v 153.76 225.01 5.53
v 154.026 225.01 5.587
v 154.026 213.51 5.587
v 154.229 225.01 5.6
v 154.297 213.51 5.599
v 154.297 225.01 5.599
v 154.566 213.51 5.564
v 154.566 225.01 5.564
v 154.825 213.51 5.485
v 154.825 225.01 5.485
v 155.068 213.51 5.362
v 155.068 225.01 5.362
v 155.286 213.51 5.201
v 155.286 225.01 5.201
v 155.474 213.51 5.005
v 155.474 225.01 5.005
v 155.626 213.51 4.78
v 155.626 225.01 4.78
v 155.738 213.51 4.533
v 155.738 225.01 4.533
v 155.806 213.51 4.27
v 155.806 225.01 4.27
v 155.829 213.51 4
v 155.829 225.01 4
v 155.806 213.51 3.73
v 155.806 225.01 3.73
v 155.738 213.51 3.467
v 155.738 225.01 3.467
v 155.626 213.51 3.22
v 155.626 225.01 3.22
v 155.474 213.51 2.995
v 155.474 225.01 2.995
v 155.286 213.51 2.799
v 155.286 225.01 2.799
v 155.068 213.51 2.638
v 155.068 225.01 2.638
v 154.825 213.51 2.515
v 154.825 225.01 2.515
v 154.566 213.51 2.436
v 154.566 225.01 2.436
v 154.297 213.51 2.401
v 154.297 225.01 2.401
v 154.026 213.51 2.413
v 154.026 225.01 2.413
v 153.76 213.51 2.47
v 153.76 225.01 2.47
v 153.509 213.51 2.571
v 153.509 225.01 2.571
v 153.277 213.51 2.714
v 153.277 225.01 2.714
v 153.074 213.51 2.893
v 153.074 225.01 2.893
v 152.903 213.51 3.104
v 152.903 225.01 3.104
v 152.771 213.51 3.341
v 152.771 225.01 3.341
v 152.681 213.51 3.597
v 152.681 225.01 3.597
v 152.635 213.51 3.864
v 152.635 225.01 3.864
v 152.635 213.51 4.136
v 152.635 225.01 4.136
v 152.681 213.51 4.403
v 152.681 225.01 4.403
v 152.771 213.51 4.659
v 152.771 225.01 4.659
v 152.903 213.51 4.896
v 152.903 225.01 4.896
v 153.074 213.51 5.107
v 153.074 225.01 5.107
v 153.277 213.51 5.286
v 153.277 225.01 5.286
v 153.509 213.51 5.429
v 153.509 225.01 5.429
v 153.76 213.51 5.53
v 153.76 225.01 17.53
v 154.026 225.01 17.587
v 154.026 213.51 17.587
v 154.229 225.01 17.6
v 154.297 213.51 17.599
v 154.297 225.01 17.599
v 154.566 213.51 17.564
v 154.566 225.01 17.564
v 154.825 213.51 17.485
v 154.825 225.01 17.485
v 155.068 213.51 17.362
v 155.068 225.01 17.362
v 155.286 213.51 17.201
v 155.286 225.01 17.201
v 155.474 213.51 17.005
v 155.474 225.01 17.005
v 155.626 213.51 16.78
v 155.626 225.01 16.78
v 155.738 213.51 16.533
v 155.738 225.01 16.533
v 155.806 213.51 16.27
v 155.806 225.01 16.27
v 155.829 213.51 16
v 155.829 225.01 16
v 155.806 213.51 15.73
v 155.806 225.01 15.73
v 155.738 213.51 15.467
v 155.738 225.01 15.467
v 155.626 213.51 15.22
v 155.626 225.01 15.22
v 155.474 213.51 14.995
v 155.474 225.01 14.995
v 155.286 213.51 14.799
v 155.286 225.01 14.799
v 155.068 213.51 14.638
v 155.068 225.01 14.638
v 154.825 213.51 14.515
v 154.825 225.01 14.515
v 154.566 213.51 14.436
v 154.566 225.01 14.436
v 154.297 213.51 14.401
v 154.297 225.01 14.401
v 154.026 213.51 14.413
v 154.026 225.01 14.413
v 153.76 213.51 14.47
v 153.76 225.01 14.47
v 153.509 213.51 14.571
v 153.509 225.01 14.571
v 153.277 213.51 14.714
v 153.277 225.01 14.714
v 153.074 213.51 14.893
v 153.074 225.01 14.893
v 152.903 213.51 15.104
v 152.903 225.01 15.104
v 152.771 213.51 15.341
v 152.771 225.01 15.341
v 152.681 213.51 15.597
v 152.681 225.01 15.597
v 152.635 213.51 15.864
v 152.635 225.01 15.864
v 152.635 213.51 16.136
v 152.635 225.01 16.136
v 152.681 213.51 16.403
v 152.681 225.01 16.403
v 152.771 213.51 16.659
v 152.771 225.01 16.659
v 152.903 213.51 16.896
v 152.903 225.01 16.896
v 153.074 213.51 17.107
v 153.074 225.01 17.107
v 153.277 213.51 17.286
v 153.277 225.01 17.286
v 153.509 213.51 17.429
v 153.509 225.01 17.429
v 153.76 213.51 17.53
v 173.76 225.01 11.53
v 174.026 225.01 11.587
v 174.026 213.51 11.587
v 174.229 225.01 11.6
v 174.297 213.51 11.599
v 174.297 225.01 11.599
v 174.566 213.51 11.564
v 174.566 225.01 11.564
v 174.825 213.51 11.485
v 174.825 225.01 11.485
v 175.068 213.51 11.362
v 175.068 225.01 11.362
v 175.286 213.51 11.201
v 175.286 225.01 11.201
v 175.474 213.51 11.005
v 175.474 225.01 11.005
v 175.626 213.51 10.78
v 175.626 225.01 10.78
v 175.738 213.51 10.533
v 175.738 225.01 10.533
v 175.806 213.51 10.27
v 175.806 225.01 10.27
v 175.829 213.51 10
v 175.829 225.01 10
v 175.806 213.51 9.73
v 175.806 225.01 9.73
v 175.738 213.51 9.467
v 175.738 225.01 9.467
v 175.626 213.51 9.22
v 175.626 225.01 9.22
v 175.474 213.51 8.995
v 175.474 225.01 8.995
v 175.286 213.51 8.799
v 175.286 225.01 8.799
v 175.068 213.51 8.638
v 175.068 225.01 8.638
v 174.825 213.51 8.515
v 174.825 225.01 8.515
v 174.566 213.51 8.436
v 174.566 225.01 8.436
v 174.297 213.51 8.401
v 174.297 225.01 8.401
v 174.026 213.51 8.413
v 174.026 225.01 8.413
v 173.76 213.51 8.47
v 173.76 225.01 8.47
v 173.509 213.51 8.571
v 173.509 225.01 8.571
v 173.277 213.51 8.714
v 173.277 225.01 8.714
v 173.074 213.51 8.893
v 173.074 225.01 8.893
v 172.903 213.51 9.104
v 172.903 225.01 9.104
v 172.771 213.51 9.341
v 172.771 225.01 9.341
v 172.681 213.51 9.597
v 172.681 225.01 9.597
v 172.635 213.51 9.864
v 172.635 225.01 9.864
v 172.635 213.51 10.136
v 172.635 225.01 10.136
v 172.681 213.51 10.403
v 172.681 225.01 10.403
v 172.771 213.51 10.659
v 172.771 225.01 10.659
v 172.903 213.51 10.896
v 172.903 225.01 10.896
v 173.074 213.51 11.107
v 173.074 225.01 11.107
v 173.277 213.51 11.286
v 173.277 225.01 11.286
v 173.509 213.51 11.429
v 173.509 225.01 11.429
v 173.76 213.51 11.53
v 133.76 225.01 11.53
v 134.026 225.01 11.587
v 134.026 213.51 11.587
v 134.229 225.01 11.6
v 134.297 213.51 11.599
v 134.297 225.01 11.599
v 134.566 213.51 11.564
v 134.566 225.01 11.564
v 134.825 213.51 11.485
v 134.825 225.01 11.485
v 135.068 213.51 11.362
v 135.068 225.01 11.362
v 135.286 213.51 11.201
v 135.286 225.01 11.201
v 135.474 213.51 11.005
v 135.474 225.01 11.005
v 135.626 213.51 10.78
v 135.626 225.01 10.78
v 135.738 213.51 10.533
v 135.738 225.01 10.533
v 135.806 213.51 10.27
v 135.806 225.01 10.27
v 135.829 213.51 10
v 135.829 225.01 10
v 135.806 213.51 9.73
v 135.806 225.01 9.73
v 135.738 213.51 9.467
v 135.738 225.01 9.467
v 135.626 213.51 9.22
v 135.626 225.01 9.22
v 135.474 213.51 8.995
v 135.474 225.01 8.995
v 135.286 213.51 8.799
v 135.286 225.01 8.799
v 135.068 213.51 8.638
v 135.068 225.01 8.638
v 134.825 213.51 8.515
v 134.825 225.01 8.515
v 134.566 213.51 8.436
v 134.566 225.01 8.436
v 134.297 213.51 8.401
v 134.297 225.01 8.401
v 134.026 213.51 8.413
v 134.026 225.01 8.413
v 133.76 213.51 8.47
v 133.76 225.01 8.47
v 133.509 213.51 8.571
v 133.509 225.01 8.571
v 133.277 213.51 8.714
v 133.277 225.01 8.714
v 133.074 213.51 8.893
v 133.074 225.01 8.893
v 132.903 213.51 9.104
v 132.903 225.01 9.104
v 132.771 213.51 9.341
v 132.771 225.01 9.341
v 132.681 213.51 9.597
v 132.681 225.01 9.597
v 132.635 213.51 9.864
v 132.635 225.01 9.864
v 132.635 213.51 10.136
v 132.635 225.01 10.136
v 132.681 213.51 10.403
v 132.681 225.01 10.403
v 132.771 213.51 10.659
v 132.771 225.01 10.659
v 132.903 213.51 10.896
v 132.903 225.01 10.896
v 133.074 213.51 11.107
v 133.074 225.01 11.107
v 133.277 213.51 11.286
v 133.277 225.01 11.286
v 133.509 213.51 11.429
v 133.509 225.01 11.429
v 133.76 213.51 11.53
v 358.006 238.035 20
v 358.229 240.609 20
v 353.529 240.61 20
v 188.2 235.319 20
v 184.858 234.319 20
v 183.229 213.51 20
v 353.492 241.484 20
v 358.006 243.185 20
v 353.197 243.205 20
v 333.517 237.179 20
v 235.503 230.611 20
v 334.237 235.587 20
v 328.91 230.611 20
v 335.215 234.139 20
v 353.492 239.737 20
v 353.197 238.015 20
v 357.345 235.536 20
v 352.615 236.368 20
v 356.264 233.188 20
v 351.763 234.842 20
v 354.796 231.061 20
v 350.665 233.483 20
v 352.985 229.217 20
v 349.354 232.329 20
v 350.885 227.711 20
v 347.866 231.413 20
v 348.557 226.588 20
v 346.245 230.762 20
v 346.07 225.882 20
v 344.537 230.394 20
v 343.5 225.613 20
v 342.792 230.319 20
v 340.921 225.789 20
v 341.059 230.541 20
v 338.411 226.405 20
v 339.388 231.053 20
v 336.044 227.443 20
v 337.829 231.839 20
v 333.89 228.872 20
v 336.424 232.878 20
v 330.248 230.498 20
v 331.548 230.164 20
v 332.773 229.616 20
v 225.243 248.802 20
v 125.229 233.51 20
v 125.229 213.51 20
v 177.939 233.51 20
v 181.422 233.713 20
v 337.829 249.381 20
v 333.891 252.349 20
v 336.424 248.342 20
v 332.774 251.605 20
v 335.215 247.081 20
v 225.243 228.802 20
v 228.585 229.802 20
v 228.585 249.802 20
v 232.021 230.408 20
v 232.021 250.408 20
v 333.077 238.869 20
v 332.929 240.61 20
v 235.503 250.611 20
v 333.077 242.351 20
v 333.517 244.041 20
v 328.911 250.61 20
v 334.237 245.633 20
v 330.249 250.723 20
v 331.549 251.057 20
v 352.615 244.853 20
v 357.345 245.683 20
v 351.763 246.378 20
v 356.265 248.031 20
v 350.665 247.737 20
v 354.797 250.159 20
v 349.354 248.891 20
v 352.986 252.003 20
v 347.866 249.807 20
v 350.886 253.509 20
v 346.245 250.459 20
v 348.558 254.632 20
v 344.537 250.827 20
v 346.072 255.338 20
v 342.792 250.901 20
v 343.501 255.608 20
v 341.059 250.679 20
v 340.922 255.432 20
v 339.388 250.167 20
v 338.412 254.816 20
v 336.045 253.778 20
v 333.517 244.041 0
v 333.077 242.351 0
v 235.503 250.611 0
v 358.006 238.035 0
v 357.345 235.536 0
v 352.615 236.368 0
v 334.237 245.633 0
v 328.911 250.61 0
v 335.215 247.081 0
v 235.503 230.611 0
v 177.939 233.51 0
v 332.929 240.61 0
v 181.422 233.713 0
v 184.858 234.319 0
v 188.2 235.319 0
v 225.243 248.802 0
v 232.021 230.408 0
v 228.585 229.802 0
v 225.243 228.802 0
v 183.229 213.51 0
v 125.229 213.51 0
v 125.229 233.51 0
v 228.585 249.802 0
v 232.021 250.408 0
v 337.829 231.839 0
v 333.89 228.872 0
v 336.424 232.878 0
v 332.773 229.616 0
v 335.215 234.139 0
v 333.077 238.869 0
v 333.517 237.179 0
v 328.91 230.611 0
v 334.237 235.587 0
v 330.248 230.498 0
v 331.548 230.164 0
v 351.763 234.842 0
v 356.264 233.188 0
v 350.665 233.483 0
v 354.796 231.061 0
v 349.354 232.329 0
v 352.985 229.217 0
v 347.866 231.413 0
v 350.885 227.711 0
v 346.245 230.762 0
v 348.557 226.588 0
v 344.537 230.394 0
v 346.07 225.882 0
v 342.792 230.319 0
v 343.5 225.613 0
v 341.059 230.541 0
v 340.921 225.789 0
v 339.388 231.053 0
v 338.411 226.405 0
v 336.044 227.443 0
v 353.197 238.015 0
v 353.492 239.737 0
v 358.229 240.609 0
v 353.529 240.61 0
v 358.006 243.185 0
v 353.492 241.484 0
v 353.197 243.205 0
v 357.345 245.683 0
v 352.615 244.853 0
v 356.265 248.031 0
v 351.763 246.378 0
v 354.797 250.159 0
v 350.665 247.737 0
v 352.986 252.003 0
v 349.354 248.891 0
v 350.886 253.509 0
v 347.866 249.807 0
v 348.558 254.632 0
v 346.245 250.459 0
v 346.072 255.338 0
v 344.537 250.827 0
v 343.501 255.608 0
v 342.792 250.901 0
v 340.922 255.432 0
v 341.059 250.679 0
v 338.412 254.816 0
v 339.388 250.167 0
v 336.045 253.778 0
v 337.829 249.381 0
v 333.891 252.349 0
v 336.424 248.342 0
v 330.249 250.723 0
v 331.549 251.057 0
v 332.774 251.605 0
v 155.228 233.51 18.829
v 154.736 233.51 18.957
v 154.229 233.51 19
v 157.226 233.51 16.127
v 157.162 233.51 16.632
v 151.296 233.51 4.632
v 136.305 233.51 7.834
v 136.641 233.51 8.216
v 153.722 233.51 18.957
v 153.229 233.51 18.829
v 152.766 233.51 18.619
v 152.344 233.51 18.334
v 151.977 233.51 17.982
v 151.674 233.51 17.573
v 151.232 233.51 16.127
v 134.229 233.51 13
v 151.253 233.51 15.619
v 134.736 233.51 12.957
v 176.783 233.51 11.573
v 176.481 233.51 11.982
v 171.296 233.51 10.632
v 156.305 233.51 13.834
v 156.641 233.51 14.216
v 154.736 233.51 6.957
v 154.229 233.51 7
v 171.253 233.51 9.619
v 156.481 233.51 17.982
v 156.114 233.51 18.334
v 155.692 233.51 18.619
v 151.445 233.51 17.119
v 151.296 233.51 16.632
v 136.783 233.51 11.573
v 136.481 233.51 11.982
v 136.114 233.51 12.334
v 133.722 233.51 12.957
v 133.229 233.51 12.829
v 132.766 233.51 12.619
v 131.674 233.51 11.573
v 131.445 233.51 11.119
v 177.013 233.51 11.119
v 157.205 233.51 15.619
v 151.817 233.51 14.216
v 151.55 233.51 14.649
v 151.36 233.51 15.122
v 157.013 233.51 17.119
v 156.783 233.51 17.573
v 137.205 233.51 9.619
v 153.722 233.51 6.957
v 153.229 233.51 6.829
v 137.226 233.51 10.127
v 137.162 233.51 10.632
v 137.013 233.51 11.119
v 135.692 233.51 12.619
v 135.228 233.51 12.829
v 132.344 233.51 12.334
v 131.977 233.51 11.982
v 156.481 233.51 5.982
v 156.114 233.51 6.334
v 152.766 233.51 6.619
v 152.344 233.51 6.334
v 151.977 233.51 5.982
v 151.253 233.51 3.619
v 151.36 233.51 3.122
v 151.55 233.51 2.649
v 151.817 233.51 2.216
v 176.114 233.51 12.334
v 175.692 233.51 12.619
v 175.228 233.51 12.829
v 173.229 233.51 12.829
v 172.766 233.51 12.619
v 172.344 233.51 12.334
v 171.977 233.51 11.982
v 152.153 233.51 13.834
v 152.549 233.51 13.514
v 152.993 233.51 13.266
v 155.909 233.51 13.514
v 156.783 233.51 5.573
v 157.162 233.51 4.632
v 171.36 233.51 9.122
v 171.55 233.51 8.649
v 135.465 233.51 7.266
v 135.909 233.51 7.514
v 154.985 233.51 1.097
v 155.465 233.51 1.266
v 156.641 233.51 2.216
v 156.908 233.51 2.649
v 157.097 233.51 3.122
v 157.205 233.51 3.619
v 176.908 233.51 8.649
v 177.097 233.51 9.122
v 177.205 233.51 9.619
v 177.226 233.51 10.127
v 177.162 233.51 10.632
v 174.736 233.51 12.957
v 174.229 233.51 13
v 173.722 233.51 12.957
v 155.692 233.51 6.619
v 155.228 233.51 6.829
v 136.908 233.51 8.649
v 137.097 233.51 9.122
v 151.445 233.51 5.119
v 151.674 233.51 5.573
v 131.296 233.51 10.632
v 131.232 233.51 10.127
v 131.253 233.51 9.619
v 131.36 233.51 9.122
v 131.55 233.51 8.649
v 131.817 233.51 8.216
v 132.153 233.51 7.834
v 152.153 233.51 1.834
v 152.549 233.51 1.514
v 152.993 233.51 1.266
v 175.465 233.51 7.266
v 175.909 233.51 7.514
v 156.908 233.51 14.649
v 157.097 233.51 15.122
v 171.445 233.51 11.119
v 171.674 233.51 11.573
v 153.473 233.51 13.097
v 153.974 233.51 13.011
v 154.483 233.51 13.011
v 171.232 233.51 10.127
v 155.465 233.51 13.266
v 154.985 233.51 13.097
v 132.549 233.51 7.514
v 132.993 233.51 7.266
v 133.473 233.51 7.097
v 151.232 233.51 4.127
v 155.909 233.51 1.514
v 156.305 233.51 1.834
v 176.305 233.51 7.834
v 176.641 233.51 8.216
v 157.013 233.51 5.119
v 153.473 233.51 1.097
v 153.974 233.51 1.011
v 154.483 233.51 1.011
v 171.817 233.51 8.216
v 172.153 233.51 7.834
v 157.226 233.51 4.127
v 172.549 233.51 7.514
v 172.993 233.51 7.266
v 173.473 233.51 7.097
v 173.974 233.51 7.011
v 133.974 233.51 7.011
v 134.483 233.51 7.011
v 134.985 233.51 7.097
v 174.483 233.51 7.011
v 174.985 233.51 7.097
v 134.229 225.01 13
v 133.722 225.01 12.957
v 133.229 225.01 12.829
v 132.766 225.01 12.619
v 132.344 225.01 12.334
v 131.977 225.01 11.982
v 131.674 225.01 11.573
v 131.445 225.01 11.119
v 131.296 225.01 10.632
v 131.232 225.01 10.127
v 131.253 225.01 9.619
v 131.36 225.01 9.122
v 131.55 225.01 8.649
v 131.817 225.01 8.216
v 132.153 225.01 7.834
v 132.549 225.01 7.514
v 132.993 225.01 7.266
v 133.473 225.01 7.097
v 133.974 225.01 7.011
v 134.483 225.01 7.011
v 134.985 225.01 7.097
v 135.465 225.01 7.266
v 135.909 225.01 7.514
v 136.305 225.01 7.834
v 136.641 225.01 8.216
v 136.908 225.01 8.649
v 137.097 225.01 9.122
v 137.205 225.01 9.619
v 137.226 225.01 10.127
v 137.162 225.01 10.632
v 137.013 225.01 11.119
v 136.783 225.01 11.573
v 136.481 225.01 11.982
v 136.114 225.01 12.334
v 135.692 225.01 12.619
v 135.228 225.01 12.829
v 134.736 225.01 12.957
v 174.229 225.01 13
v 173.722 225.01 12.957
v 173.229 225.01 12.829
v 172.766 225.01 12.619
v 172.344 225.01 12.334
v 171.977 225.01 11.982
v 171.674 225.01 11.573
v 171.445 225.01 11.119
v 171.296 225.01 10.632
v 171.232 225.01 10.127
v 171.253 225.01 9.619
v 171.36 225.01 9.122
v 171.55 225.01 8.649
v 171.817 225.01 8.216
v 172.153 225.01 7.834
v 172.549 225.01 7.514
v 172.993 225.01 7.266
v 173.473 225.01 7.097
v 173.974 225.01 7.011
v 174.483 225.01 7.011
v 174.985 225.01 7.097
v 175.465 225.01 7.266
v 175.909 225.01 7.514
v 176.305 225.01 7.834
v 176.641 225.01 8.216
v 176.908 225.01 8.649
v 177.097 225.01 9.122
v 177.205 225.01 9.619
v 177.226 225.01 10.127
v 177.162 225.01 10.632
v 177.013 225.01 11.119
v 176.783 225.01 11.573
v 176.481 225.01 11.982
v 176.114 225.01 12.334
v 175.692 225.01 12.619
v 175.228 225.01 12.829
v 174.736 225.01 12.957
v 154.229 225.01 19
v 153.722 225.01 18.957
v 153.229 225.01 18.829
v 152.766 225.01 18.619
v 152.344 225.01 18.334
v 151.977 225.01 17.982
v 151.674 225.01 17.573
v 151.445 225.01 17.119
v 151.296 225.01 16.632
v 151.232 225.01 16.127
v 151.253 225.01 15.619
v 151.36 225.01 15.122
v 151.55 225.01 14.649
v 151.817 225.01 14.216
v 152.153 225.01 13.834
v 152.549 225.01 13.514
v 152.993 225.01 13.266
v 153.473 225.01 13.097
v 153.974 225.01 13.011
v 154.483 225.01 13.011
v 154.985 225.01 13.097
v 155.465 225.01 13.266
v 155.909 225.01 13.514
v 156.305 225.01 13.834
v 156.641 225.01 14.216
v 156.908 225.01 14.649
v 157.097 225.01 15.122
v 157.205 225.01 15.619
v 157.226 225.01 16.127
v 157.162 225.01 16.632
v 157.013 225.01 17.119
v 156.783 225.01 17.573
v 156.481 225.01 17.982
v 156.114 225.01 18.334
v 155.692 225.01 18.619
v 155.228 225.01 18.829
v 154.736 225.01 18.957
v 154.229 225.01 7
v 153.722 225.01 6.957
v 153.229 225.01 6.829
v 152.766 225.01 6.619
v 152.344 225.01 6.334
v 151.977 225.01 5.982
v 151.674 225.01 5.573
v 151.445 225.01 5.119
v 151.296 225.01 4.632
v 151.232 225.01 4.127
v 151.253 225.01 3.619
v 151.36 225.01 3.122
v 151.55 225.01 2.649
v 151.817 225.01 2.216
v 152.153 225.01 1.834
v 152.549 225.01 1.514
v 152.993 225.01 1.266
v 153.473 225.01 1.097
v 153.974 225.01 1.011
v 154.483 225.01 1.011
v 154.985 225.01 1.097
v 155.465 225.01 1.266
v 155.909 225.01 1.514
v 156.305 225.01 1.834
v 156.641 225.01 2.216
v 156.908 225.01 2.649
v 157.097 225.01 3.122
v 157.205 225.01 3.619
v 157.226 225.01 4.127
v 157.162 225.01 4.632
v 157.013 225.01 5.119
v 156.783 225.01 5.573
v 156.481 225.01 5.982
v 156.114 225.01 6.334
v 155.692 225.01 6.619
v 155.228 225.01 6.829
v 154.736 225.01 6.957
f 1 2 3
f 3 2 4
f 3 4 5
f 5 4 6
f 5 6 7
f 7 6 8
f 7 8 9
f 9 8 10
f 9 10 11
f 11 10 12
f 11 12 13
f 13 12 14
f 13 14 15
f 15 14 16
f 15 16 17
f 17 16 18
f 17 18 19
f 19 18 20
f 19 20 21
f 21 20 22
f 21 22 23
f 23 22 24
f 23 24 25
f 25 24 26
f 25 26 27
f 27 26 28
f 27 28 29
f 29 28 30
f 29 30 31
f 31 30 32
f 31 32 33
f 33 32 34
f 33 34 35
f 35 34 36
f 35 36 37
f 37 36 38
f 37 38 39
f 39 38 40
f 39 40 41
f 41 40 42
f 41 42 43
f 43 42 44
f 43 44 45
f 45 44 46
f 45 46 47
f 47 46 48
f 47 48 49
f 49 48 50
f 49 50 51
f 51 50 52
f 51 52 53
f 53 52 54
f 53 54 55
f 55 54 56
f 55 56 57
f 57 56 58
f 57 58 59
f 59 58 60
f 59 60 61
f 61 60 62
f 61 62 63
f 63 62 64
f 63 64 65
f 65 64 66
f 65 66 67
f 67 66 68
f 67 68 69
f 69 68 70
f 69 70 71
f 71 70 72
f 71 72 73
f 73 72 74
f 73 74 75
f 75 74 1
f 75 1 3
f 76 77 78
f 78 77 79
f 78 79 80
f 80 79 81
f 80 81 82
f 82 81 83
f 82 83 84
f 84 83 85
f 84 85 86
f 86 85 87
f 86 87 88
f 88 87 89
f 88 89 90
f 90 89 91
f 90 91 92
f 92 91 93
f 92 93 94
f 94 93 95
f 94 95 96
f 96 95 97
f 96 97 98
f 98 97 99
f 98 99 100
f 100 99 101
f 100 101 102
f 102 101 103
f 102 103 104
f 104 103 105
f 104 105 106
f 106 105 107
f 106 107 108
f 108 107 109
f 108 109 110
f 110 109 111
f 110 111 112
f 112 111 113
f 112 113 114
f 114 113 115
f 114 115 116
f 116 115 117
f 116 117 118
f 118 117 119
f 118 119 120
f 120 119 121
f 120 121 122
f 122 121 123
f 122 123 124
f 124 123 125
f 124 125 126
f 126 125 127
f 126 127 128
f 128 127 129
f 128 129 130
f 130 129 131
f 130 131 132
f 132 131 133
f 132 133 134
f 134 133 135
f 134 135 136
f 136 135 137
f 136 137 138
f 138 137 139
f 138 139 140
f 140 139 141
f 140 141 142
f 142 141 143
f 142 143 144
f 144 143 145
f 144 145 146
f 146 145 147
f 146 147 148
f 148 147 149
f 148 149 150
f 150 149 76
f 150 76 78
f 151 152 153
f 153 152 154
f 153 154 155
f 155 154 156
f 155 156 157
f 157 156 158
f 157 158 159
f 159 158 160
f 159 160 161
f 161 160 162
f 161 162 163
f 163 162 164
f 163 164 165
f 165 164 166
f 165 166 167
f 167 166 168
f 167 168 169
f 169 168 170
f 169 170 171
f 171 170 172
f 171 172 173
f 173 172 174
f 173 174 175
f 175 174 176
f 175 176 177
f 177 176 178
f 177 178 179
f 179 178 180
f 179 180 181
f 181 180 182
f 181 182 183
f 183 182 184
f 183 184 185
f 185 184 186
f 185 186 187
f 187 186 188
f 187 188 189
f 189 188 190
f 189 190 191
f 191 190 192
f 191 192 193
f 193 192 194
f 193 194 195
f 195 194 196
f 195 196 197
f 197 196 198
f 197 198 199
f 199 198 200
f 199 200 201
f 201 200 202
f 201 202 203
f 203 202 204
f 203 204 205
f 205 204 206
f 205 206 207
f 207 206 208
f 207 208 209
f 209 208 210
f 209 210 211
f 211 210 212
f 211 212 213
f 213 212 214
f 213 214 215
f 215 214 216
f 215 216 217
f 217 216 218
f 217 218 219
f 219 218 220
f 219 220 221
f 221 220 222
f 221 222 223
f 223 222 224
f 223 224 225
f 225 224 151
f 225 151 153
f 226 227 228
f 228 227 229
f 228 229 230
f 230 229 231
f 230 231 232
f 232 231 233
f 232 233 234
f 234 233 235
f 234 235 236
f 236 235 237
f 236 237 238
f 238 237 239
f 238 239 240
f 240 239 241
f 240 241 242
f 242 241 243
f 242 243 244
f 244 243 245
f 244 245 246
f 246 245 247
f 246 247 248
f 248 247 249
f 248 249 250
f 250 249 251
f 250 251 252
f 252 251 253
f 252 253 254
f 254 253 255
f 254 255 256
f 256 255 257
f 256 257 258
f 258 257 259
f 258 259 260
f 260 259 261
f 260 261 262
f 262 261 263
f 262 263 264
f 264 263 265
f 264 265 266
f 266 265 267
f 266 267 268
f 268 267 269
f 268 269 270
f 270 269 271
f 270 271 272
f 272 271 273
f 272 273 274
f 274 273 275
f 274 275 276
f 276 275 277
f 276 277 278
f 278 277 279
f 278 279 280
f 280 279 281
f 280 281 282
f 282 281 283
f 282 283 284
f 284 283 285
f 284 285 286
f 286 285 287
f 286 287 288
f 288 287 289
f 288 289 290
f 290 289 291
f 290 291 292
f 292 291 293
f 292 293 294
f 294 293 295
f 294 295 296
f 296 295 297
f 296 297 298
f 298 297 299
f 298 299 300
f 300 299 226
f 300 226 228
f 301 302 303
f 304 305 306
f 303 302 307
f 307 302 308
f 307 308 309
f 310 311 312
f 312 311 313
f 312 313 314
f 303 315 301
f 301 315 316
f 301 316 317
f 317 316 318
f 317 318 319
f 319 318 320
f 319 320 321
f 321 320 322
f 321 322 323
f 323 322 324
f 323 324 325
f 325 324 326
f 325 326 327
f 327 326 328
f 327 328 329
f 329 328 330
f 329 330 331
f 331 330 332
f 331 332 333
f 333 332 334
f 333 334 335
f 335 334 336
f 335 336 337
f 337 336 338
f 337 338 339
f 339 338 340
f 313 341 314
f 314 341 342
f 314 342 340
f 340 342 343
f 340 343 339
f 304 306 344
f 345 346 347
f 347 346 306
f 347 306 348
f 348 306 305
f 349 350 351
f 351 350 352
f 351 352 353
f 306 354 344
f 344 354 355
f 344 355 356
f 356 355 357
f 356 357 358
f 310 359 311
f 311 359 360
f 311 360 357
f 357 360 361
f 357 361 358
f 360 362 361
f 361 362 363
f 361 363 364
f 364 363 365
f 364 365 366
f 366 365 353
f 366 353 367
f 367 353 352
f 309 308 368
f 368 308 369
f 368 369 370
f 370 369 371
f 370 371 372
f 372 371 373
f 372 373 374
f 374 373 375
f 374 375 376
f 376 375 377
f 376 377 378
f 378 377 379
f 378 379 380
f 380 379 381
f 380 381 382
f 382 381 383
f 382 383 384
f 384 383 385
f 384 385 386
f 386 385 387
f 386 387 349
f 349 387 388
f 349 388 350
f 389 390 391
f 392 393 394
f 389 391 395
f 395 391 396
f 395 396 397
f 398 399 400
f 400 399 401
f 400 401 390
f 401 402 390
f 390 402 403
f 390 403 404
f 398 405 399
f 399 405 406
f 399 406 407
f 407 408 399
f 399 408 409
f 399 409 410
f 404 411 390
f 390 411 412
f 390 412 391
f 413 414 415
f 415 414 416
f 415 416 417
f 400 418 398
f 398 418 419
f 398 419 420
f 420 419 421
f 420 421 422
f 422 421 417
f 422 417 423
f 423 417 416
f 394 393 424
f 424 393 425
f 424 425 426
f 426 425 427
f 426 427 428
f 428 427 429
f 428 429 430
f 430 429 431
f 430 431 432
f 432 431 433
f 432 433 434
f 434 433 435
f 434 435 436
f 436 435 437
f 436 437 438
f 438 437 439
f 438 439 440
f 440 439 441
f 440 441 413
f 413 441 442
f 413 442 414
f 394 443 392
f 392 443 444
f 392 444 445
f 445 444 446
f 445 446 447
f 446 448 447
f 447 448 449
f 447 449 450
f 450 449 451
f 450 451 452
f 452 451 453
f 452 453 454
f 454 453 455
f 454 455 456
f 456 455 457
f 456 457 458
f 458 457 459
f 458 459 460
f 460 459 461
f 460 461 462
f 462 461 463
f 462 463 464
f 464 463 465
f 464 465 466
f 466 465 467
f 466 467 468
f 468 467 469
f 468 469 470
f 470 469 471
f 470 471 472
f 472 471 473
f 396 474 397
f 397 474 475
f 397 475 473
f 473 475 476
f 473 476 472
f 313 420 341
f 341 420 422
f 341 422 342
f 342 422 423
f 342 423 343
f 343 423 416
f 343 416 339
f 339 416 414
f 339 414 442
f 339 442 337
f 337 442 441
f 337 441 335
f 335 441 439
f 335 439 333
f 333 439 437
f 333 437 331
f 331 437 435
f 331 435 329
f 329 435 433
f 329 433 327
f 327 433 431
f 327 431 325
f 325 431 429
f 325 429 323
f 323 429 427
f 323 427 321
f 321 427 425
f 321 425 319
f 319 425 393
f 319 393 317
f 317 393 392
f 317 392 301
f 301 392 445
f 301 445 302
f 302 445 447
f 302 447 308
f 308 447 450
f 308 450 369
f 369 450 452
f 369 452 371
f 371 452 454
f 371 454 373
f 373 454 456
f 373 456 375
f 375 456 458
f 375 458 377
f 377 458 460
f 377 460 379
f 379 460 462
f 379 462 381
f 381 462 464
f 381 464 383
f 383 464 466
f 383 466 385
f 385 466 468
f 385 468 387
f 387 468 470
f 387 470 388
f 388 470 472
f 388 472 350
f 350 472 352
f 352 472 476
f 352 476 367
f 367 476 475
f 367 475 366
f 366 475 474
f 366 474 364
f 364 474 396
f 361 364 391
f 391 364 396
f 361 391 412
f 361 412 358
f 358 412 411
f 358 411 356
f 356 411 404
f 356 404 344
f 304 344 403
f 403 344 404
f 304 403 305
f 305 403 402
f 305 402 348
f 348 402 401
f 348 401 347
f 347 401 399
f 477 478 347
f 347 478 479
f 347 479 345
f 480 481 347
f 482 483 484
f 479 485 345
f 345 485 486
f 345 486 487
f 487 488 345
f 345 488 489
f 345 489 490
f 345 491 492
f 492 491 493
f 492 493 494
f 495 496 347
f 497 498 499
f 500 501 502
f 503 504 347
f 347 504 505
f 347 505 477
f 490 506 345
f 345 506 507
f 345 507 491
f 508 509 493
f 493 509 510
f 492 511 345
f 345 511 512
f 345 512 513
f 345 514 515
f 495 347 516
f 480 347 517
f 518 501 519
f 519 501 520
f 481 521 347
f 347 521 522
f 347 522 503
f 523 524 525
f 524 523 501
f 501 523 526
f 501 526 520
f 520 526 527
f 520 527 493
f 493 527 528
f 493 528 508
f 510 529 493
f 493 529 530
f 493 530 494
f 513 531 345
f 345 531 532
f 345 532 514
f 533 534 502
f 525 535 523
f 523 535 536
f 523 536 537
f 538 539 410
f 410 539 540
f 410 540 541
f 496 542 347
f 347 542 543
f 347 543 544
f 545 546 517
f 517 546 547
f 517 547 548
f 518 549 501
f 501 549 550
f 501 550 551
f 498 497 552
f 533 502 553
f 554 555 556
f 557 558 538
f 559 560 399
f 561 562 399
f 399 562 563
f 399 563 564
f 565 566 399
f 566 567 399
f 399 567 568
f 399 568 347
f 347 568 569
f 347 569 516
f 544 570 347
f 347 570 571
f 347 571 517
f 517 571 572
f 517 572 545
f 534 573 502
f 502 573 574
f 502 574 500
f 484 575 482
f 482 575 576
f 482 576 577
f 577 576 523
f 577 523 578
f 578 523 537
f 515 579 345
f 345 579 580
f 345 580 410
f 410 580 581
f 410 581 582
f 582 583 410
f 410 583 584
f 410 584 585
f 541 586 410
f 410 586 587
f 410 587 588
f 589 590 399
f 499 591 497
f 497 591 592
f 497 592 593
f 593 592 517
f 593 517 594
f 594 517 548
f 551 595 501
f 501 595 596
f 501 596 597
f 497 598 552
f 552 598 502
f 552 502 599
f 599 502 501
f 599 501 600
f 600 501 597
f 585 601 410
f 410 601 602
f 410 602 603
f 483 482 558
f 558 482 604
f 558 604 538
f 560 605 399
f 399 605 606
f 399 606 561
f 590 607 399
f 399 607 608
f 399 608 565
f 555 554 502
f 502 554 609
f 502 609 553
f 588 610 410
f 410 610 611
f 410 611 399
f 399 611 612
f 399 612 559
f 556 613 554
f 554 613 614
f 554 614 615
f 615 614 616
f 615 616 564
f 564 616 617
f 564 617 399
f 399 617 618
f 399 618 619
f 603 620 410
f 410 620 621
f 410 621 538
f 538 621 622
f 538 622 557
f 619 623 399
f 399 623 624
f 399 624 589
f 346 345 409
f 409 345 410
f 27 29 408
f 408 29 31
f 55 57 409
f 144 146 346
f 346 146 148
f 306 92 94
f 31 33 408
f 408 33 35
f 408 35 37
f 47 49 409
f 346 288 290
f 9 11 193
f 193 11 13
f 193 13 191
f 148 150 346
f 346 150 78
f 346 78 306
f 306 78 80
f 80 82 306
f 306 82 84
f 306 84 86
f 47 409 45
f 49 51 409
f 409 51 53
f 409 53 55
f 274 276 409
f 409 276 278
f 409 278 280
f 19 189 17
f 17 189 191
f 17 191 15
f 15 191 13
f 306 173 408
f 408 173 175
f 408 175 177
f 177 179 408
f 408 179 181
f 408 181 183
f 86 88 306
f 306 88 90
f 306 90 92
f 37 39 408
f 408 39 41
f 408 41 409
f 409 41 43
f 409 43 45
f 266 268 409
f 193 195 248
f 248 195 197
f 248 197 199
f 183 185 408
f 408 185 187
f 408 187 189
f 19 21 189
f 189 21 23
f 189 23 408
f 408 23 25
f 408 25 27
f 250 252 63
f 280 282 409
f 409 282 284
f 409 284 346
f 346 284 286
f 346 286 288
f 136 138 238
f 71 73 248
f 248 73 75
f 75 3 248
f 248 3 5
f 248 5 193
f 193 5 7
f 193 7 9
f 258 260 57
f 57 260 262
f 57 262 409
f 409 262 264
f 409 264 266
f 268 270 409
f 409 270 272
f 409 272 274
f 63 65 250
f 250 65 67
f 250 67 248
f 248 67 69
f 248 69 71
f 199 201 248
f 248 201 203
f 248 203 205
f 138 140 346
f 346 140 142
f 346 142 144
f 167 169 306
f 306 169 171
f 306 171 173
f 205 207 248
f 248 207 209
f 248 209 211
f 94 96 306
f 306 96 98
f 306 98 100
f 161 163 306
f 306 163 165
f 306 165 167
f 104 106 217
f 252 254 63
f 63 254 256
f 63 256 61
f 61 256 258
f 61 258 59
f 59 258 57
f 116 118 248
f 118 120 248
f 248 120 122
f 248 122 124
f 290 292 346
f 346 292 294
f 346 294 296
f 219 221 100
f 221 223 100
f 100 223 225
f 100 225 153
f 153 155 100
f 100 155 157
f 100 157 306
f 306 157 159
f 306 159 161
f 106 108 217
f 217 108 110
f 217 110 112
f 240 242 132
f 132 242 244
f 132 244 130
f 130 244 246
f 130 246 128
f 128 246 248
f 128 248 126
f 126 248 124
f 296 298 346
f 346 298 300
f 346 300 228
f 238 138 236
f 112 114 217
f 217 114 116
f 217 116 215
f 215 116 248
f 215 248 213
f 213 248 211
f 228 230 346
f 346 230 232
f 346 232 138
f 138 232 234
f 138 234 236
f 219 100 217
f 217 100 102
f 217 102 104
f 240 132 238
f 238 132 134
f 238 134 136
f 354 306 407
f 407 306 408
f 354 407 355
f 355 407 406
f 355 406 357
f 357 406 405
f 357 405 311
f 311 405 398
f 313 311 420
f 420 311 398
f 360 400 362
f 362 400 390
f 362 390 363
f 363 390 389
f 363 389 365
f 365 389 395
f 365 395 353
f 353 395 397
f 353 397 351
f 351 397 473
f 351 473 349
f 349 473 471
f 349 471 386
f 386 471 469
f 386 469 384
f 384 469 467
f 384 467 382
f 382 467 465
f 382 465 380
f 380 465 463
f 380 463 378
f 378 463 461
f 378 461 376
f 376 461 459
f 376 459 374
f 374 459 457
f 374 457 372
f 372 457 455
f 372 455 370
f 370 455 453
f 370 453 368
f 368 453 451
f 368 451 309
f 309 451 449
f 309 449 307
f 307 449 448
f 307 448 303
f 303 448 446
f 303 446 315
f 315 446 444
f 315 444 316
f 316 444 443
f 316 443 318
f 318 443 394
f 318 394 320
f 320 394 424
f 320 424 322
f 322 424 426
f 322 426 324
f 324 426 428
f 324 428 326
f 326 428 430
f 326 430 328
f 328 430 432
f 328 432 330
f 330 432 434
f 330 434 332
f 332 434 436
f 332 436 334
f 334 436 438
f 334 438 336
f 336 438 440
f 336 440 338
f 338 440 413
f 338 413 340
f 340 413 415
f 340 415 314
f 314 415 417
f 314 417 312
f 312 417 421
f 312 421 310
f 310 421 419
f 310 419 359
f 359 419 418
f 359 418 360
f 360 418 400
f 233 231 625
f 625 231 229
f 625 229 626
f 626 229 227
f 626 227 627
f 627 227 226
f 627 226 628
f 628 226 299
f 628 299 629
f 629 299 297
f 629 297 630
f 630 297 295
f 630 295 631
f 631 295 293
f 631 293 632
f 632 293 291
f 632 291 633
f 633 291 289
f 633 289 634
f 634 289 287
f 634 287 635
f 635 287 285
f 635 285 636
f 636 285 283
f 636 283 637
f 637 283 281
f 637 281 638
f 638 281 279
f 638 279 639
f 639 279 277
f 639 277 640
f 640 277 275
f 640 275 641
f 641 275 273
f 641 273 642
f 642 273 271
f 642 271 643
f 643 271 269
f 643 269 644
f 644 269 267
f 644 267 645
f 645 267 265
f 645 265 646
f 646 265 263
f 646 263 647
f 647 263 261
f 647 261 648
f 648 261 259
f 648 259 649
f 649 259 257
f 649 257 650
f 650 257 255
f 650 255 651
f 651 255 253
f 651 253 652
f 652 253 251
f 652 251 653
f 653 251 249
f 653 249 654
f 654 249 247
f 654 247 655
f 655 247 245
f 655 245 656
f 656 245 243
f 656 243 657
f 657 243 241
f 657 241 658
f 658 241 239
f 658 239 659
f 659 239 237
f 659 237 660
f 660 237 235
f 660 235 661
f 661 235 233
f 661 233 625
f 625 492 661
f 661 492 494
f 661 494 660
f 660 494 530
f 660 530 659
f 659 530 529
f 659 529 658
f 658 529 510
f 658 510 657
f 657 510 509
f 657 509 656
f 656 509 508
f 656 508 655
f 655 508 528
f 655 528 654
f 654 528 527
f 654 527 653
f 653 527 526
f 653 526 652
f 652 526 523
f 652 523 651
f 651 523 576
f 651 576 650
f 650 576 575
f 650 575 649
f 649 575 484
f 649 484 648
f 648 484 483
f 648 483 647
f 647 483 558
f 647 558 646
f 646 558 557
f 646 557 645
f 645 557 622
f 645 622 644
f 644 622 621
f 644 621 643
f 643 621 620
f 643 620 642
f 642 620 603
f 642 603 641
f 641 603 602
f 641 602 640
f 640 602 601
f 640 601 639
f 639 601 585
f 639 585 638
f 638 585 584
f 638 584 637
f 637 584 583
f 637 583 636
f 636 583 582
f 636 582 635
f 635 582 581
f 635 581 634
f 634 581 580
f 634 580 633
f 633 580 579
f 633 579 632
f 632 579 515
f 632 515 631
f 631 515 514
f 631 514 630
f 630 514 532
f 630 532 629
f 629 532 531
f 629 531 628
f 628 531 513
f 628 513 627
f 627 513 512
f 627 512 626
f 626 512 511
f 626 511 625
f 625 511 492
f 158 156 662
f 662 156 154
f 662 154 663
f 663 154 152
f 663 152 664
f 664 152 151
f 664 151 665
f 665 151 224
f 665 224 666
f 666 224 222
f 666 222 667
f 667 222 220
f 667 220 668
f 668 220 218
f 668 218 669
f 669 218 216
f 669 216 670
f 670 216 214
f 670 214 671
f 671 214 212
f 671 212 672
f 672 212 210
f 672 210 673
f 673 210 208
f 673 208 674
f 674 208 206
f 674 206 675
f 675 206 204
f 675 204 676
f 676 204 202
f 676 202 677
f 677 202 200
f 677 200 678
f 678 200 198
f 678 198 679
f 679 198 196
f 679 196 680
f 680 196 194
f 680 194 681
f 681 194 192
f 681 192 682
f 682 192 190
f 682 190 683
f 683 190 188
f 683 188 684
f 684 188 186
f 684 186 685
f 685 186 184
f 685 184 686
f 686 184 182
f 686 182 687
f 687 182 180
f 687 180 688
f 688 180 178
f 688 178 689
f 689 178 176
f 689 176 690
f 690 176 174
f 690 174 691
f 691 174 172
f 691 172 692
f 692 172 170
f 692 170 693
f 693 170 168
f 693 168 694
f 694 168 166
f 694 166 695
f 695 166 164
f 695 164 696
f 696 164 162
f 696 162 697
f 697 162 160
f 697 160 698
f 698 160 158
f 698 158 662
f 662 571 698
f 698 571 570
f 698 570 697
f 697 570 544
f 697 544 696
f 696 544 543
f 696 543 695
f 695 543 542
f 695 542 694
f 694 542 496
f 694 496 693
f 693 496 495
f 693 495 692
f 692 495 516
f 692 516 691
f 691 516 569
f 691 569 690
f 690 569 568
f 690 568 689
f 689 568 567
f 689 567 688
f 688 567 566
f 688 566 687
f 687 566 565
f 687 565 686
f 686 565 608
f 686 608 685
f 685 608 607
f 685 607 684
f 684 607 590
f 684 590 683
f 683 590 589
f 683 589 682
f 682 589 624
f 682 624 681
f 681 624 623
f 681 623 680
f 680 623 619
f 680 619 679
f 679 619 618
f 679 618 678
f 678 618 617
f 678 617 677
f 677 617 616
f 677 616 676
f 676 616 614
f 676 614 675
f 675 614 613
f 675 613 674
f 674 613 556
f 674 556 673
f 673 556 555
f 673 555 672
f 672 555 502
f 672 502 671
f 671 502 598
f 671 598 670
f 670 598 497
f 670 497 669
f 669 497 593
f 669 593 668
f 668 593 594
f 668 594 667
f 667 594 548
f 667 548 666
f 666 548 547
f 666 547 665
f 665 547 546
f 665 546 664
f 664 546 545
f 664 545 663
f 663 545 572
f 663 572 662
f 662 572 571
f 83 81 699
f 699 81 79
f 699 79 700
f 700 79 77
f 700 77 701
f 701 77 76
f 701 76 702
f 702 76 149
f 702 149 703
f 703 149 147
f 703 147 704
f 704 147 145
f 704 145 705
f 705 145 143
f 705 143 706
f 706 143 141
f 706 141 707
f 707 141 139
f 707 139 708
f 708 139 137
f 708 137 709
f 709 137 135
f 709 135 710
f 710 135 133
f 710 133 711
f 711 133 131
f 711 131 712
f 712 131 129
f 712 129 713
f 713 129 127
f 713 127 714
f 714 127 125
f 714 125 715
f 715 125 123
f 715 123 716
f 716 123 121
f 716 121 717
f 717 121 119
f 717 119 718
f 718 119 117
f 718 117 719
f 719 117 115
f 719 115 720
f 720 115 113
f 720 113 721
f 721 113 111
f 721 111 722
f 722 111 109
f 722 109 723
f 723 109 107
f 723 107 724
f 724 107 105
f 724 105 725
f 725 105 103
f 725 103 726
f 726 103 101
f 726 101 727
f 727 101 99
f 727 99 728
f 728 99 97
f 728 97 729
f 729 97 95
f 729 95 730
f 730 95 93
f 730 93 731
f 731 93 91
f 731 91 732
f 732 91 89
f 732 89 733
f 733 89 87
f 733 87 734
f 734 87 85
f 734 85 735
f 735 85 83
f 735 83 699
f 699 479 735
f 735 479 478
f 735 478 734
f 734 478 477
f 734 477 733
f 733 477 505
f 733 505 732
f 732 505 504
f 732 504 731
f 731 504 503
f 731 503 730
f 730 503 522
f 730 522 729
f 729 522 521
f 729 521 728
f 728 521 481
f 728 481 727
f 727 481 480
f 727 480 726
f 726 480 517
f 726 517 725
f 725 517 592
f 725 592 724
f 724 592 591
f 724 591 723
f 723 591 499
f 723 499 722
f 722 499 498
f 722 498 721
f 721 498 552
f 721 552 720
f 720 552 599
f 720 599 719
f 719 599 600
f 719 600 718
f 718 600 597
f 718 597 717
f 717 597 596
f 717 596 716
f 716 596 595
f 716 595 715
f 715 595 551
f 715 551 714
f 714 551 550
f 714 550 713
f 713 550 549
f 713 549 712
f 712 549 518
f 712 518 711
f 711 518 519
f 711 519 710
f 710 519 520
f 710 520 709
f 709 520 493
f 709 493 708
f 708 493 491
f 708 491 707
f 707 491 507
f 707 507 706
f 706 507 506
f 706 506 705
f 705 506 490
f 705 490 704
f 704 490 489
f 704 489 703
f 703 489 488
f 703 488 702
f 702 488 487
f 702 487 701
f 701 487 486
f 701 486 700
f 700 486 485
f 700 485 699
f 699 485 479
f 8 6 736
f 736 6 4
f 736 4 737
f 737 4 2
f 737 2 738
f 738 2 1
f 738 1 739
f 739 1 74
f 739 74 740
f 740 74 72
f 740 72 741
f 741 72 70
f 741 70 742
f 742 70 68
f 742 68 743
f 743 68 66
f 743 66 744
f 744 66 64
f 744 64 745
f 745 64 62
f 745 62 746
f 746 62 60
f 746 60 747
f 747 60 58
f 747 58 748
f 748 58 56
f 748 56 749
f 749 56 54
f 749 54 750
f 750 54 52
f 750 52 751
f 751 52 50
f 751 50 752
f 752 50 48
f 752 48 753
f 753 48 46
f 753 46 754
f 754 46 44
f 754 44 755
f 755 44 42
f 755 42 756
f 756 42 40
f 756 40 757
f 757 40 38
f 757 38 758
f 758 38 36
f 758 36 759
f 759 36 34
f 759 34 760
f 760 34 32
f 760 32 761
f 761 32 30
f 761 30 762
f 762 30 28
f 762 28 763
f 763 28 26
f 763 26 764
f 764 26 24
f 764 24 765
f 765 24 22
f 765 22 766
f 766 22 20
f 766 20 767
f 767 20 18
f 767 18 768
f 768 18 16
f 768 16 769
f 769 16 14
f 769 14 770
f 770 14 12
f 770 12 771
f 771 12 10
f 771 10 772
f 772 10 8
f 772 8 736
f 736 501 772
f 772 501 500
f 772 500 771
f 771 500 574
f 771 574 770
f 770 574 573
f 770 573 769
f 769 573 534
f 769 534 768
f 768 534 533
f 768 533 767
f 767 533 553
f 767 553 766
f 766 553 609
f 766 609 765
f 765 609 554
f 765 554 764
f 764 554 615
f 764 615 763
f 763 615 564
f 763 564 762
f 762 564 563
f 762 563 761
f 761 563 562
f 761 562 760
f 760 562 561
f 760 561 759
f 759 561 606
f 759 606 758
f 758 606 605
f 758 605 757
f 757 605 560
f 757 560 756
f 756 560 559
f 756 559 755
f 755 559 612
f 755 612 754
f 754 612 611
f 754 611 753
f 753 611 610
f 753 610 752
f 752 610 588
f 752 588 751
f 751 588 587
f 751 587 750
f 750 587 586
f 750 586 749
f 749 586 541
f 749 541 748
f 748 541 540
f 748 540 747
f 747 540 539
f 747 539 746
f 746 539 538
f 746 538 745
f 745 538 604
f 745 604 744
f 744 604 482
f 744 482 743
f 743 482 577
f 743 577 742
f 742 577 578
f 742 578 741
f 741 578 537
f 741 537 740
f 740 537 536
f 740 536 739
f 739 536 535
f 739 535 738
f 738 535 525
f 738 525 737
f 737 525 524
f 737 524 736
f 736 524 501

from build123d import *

# Parameters (mm, degrees)
MODEL_R             = 10.3
EXTRUDE_1_DEPTH     = 20
SKETCH_2_R          = 1.6
CUT_EXTRUDE_1_DEPTH = 20
SKETCH_3_R          = 3
CUT_EXTRUDE_2_DEPTH = 8.5


with BuildPart() as part:
    # Model → 凸台-拉伸1 (new body)
    with BuildSketch(Plane.XY):
        with BuildLine():
            Line((125.228900422, 213.510087452), (183.228900422, 213.510087452))
            Line((183.228900422, 213.510087452), (225.242736582, 228.801873242))
            ThreePointArc((225.242736582, 228.801873242), (230.293895552, 230.155327209), (235.503340882, 230.611094618))
            Line((235.503340882, 230.611094618), (328.909813266, 230.611094618))
            ThreePointArc((328.909813266, 230.611094618), (331.547600788, 230.163715156), (333.89036532, 228.871613865))
            ThreePointArc((333.89036532, 228.871613865), (358.22890041, 240.609493061), (333.891295649, 252.349301102))
            ThreePointArc((333.891295649, 252.349301102), (331.548694356, 251.057478239), (328.911168476, 250.610215048))
            Line((328.911168476, 250.610215048), (235.503478715, 250.611047476))
            ThreePointArc((235.503478715, 250.611047476), (230.293897677, 250.15530328), (225.242607062, 248.8018261))
            Line((225.242607062, 248.8018261), (188.1996953, 235.319308829))
            ThreePointArc((188.1996953, 235.319308829), (183.14853633, 233.965854862), (177.939091, 233.510087452))
            Line((177.939091, 233.510087452), (125.228900422, 233.510087452))
            Line((125.228900422, 233.510087452), (125.228900422, 213.510087452))
        make_face()
        with Locations((343.228900422, 240.610087452)):
            Circle(MODEL_R, mode=Mode.SUBTRACT)
    extrude(amount=EXTRUDE_1_DEPTH)

    # 草图2 → 切除-拉伸1 (cut)
    with BuildSketch(Plane.XZ.offset(-213.510087452)):
        with Locations((134.228900422, 10)):
            Circle(SKETCH_2_R)
        with Locations((174.228900422, 10)):
            Circle(SKETCH_2_R)
        with Locations((154.228900422, 16)):
            Circle(SKETCH_2_R)
        with Locations((154.228900422, 4)):
            Circle(SKETCH_2_R)
    extrude(amount=-CUT_EXTRUDE_1_DEPTH, mode=Mode.SUBTRACT)

    # 草图3 → 切除-拉伸2 (cut)
    with BuildSketch(Plane(origin=(0, 233.510087452, 0), x_dir=(1, 0, 0), z_dir=(0, 1, 0))):
        with Locations(Location((134.228900422, -10, 0), (0, 0, 270))):
            Circle(SKETCH_3_R)
        with Locations(Location((154.228900422, -4, 0), (0, 0, 270))):
            Circle(SKETCH_3_R)
        with Locations(Location((154.228900422, -16, 0), (0, 0, 270))):
            Circle(SKETCH_3_R)
        with Locations(Location((174.228900422, -10, 0), (0, 0, 270))):
            Circle(SKETCH_3_R)
    extrude(amount=-CUT_EXTRUDE_2_DEPTH, mode=Mode.SUBTRACT)


solid = part.part
